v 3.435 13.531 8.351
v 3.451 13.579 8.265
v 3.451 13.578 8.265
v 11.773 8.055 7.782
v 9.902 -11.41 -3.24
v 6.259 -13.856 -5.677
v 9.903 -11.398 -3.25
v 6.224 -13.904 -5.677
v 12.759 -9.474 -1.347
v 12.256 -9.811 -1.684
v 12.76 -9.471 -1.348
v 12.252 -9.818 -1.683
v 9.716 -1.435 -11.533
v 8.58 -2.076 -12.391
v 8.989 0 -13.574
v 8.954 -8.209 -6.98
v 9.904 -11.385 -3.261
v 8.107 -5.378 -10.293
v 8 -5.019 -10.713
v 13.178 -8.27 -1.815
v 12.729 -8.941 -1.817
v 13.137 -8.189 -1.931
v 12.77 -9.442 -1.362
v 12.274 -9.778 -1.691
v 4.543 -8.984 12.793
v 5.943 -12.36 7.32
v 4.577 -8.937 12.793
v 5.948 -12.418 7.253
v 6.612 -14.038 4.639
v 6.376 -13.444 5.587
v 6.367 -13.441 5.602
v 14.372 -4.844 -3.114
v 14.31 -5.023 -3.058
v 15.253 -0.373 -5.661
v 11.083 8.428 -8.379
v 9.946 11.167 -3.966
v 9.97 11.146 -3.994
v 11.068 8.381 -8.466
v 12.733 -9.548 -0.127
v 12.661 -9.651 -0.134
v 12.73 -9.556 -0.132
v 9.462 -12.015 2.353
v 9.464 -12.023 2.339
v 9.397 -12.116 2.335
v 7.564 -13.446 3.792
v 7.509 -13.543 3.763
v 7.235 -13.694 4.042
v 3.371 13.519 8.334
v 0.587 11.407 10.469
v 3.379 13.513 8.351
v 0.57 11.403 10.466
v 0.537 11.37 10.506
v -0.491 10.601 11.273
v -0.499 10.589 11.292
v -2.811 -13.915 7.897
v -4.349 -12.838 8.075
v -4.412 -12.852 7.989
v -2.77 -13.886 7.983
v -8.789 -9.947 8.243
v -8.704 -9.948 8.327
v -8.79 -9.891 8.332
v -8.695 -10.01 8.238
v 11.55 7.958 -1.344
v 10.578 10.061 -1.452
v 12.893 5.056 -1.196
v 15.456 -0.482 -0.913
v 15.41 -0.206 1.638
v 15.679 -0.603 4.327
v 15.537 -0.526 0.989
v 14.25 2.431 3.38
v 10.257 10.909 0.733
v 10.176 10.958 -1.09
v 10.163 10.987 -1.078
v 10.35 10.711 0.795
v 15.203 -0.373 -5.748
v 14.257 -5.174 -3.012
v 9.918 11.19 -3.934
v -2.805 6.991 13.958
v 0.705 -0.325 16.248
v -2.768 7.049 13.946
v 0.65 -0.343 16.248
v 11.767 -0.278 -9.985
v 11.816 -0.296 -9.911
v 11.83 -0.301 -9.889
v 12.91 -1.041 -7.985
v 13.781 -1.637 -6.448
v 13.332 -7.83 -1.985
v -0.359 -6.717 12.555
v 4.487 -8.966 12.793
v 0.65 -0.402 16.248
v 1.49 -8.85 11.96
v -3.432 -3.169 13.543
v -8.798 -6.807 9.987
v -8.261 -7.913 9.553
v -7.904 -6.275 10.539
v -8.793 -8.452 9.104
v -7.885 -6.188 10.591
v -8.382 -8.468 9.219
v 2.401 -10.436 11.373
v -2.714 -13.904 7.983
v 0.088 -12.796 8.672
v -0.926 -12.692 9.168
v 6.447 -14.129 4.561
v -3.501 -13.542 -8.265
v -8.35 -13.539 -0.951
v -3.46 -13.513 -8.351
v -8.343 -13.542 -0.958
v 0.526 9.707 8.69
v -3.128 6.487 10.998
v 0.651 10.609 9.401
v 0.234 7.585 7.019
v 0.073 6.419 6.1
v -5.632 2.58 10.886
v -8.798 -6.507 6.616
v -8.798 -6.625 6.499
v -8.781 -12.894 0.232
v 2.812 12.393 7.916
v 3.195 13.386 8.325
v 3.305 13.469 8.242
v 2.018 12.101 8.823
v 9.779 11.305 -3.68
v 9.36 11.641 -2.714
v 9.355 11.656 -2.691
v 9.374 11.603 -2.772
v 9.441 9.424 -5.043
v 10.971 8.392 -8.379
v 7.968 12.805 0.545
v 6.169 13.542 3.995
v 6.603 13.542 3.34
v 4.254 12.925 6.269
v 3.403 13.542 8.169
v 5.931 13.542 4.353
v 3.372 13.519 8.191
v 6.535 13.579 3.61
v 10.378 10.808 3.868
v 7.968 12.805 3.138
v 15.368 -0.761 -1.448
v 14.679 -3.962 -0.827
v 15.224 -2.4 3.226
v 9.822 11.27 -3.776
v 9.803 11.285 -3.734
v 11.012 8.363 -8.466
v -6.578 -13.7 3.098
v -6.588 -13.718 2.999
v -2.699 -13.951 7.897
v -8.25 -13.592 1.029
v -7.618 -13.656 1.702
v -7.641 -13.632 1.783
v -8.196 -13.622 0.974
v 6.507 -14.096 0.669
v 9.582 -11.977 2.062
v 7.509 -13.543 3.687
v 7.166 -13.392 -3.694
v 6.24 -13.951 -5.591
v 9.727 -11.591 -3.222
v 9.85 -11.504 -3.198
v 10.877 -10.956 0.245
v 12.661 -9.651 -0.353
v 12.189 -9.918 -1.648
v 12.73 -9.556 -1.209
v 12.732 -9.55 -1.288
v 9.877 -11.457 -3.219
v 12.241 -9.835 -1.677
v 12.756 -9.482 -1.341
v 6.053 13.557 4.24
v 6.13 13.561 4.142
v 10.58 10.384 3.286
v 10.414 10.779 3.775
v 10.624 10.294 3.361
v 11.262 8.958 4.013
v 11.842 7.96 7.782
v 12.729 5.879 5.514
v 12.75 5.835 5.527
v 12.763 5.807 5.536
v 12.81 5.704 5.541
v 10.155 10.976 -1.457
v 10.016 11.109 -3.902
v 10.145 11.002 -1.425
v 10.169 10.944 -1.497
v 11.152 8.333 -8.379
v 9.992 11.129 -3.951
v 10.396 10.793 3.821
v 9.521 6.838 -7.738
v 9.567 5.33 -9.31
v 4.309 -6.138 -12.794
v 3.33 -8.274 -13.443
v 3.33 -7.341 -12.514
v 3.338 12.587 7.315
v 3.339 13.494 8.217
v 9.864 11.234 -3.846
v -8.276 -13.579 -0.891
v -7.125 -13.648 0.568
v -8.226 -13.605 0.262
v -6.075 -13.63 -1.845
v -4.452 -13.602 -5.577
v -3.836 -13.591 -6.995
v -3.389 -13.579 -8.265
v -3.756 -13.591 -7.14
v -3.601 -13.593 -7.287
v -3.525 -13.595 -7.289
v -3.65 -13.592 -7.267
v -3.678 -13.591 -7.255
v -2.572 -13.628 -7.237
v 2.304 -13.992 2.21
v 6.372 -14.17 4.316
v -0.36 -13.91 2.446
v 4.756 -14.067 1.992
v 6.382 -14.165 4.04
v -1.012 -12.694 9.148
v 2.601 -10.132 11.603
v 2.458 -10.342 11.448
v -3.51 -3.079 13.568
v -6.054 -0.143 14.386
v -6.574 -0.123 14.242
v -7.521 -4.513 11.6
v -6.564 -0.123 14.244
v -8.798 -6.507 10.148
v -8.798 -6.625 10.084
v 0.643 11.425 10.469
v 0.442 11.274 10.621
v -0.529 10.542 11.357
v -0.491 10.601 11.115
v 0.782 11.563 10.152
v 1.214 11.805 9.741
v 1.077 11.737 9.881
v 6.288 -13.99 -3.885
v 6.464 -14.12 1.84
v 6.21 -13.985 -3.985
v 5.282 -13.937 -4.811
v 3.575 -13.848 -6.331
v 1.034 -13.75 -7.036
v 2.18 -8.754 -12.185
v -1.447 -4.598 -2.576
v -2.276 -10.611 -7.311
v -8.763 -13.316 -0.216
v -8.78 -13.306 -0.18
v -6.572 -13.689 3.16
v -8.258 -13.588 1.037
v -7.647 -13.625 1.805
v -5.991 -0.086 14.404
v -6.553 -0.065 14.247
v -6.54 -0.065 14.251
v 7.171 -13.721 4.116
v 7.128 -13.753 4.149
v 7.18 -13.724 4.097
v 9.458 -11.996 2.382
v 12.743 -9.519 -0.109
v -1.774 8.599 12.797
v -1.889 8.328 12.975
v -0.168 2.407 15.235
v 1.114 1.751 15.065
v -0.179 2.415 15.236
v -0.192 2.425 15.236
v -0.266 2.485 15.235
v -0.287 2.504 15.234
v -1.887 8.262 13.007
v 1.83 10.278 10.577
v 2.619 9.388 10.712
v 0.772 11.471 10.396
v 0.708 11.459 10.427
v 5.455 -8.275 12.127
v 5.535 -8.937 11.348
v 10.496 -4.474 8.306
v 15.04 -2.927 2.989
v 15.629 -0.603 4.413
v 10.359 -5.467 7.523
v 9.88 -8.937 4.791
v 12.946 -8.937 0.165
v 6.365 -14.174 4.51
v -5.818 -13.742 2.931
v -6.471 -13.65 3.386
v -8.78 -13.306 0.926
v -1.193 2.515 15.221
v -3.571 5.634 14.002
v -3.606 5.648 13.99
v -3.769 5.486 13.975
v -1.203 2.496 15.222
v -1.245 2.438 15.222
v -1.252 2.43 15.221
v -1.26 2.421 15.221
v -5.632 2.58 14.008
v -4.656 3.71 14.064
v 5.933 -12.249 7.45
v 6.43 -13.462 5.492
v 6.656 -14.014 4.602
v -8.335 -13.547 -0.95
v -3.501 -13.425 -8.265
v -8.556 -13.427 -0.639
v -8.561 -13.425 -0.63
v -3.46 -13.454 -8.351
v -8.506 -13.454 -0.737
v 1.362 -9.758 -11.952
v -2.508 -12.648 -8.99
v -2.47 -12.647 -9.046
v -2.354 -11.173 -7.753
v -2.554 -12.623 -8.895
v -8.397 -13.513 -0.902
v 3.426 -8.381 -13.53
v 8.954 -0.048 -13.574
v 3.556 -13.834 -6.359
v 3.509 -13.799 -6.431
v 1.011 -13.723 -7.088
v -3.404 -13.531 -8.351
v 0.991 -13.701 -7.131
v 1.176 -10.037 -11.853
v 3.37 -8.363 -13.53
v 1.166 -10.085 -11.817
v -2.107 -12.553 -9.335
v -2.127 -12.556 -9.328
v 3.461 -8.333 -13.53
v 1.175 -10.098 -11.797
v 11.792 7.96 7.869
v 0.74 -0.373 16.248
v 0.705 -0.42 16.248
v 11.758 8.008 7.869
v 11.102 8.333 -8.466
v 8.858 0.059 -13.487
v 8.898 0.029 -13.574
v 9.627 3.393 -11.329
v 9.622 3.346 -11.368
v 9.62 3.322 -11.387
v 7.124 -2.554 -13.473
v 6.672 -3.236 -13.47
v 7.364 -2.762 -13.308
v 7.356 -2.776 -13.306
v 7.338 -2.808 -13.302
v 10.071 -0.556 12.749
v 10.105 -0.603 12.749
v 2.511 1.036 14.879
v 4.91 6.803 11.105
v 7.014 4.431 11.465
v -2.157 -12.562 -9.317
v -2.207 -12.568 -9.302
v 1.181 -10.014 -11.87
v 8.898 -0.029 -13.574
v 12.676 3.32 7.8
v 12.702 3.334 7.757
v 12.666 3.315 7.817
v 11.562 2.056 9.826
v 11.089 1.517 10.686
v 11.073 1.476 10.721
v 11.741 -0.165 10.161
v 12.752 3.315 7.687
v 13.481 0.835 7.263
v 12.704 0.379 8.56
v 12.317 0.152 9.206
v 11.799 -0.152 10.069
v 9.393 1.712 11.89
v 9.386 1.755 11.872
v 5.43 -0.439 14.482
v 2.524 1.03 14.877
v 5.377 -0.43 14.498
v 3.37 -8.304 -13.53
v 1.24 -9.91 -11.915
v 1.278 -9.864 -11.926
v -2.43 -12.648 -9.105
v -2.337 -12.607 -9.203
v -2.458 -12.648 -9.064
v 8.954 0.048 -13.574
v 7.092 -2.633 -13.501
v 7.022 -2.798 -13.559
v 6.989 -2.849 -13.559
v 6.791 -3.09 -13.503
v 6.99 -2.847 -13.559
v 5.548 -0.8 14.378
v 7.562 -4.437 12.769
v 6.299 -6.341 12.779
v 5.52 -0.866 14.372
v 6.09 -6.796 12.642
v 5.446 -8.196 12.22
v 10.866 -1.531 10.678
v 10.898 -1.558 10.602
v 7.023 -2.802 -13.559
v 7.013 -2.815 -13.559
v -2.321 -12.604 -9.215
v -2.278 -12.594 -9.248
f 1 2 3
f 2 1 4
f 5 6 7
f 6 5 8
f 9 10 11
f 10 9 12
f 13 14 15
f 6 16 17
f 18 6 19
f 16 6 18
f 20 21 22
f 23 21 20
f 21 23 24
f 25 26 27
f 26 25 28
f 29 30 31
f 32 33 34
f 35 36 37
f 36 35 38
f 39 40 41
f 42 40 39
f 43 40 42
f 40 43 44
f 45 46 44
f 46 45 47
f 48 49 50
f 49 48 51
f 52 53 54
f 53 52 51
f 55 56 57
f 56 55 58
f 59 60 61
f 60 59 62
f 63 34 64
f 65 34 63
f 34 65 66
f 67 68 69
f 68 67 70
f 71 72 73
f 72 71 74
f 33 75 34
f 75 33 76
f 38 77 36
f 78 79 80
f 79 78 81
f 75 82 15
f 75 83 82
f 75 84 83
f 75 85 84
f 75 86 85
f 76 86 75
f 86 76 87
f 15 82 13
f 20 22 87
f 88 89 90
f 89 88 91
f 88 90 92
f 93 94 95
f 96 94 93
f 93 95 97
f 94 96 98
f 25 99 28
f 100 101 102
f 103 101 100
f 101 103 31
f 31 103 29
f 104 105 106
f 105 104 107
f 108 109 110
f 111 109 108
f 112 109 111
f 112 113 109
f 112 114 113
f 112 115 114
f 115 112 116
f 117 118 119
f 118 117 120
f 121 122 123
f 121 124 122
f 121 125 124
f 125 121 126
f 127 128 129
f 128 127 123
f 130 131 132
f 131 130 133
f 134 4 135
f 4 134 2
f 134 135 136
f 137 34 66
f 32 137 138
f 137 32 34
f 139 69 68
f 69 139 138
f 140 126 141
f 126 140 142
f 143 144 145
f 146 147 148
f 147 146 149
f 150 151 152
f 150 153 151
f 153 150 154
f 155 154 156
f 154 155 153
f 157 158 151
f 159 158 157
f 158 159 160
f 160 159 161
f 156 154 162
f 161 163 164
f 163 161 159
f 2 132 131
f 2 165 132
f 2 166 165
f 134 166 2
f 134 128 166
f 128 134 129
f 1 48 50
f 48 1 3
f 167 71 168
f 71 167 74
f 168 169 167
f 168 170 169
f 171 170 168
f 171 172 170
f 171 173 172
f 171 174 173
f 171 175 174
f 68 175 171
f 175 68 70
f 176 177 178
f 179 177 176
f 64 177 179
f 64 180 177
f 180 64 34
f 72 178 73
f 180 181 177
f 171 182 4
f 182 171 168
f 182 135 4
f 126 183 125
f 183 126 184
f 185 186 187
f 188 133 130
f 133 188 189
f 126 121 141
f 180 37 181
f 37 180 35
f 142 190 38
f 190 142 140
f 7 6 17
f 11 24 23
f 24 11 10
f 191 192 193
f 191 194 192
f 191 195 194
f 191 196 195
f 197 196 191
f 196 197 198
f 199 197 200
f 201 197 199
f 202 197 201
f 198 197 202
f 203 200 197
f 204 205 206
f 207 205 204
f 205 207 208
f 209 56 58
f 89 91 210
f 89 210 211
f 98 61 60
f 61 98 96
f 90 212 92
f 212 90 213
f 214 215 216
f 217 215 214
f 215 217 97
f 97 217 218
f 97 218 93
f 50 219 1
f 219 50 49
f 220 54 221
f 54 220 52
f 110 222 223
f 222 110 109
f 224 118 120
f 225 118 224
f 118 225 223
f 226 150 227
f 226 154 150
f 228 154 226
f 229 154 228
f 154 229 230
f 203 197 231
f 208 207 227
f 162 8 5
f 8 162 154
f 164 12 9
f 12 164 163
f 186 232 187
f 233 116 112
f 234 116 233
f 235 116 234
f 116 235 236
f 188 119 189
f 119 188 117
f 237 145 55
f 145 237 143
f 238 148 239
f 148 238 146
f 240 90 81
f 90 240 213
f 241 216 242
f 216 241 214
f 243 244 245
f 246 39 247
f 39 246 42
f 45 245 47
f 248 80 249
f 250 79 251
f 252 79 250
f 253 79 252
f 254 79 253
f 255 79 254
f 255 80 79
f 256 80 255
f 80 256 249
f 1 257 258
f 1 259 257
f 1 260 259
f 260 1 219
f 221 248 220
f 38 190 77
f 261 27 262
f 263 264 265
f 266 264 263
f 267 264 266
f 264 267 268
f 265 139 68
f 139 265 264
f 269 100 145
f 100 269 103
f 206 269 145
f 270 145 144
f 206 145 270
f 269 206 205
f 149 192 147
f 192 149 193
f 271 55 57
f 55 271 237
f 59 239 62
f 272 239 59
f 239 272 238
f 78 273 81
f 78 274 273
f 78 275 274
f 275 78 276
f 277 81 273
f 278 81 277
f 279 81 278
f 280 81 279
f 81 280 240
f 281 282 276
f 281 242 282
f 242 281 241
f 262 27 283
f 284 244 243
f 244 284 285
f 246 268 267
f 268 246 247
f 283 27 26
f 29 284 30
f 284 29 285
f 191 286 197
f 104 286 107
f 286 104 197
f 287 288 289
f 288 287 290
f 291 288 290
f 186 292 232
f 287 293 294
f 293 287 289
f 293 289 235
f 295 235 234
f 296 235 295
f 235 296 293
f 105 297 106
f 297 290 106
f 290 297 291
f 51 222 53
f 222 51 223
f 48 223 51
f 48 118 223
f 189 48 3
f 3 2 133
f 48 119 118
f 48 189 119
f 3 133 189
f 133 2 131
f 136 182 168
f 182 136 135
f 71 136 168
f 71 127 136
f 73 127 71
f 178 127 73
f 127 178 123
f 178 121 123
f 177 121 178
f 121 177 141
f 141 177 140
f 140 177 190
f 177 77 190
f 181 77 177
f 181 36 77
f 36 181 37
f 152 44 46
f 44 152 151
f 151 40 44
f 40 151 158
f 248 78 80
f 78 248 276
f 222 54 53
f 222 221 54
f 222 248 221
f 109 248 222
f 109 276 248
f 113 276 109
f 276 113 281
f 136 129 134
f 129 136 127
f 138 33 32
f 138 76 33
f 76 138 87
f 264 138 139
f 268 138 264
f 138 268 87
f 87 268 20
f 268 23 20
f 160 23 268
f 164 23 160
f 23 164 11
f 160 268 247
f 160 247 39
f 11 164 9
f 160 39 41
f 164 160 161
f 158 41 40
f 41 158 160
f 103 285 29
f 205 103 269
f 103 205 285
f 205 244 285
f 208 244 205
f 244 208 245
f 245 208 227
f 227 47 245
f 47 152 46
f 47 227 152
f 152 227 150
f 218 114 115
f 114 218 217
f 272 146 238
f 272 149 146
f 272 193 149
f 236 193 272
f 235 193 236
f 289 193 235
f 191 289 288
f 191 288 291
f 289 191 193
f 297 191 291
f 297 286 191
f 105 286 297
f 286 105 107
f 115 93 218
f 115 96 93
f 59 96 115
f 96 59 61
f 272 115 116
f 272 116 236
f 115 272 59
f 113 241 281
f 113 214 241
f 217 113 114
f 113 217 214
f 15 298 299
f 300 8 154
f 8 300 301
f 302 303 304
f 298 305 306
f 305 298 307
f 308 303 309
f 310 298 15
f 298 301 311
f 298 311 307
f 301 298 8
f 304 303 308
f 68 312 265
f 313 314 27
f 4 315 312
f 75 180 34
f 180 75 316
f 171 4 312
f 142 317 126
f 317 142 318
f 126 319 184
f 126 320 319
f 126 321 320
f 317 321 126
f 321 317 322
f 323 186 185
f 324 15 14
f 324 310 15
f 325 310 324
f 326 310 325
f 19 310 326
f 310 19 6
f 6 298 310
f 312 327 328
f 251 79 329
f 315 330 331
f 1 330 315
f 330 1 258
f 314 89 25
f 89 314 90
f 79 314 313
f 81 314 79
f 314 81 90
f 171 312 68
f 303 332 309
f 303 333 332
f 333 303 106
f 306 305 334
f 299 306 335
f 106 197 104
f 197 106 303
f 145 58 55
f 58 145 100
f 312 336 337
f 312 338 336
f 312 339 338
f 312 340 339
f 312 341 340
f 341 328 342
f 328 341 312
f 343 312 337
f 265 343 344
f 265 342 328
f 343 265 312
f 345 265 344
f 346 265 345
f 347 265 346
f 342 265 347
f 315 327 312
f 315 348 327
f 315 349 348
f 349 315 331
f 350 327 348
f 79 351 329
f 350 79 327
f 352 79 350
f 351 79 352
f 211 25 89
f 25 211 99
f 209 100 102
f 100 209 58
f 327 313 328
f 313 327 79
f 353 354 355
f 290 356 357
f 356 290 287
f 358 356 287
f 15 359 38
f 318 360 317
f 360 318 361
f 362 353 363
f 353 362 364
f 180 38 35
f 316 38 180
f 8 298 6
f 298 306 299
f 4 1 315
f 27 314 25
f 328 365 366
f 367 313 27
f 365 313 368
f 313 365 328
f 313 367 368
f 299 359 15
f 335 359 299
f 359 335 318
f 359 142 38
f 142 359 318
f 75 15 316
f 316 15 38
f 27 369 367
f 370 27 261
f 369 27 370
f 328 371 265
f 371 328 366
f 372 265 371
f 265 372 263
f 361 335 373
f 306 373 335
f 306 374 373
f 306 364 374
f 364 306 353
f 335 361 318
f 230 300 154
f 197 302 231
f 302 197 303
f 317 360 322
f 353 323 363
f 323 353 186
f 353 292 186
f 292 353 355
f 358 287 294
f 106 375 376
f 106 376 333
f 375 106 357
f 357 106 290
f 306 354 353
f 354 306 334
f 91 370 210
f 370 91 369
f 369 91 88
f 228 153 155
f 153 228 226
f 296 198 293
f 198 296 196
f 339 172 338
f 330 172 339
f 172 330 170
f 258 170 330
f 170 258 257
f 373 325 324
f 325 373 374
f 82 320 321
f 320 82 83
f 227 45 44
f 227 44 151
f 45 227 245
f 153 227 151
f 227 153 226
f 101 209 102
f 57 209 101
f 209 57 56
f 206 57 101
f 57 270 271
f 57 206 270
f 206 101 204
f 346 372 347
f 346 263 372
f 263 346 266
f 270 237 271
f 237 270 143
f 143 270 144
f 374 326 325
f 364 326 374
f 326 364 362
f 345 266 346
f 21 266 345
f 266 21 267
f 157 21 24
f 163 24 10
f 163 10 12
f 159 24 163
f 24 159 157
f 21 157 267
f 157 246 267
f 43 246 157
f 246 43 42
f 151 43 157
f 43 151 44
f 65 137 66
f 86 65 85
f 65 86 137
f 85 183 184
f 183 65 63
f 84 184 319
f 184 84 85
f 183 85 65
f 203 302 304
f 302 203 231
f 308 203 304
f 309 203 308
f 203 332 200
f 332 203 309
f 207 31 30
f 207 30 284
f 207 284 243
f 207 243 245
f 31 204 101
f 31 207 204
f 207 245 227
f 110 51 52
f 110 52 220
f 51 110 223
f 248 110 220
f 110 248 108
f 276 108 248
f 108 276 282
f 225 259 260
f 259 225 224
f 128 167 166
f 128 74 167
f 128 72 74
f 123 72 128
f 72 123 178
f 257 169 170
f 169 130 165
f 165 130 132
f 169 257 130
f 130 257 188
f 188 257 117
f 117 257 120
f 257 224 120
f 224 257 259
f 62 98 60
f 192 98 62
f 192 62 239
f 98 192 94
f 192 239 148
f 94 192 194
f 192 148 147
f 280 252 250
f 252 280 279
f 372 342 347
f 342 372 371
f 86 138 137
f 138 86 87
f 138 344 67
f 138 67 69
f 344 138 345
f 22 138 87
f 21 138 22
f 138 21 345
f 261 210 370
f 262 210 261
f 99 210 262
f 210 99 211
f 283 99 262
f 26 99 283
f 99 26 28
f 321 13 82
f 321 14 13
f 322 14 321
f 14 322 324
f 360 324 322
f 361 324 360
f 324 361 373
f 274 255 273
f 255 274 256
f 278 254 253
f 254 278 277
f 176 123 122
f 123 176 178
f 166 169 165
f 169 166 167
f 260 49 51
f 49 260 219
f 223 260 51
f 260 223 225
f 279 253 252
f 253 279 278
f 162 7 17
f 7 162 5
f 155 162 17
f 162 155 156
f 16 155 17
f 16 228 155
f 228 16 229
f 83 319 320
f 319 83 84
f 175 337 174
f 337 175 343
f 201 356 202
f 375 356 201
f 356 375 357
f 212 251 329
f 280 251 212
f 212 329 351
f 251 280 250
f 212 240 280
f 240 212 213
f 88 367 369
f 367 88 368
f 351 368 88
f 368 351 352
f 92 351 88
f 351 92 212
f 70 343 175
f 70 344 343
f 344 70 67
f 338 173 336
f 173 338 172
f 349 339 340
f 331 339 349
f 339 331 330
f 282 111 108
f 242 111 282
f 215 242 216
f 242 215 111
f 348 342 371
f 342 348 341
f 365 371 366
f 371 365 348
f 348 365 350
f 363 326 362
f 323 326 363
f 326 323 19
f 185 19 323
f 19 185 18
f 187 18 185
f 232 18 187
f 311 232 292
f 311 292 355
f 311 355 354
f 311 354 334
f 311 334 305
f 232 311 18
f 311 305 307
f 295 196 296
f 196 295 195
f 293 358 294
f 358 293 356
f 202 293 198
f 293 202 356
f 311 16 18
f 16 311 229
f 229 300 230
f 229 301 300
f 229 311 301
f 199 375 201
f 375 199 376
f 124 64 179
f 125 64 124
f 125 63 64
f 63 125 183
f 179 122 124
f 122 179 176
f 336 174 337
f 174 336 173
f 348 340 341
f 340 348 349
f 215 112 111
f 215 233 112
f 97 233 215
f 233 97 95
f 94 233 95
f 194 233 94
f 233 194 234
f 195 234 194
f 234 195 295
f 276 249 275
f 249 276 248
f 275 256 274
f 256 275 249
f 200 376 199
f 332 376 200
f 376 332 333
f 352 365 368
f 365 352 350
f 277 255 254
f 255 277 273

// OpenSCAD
// Auto-generated OpenSCAD file

    inner_points = 10*[[-0.555121029674517, 0.252097973557222, 1.5076139678747007], [0.4789306739060282, -0.30582094958318945, -1.5076139678747007], [1.2783614762453286, 0.8694628743494993, 0.2856195091084527], [0.7478183893280848, -1.344745490869777, 0.5133766732484469], [0.44471109692947597, 0.23973508482260844, 1.52113719207135], [-0.8717455572000972, -0.6565892775398746, 1.235517682962897], [-0.04101019982741844, 1.0542321918178703, 1.203852958972461], [1.2812764981885028, -0.21163080548135457, -0.9182334498640081], [-0.03518015594107033, -1.1079551678438375, -1.203852958972461], [0.7955552014316083, 0.6028663015139072, -1.235517682962897], [0.7460168066892514, -0.6765928517116128, 1.2573987193505602], [-0.06759815027878918, -1.230551772596204, 1.0808761548714765], [1.2630426584795242, -0.9555523132818186, -0.25021524852414045], [0.44942770151148353, -1.50951123416641, -0.42673781300322433], [1.26012763653635, 0.1255413665490355, 0.9536377104483202], [-0.8699439745612638, -1.324741916698039, 0.49149563686078374], [0.4742140693240208, 1.443425369405829, 0.44026103719987336], [1.5796671860051041, -0.04686506218472162, 0.0218810363876632], [-0.5504044250925096, -1.4971483454317962, -0.44026103719987336], [0.793753618792775, 1.2710189406720718, -0.49149563686078374]];

    outer_points = 10*[[-0.8938608578754866, 0.0, 1.3487204141363005], [0.8938608578754866, 0.0, -1.3487204141363005], [1.174206570281529, 0.7960365198874888, 0.7782022732317085], [0.6635402669135327, -1.408673080510631, 0.439759542453489], [0.06899987944129649, -0.03728566145254908, 1.6161320443692175], [-1.1052066908402325, -0.8333221813400379, 0.8379297711375091], [-0.341090558415444, 0.8333221813400379, 1.344345700255859], [1.515297128696973, -0.03728566145254908, -0.5661434270241504], [0.341090558415444, -0.8333221813400379, -1.344345700255859], [1.1052066908402325, 0.8333221813400379, -0.8379297711375091], [0.4527347085711068, -0.8936516488632841, 1.2706108778413883], [-0.2729648616763203, -1.3856292744399337, 0.7896554228617598], [1.3465955664465934, -0.8936516488632841, -0.07810953629491224], [0.6208959961991664, -1.3856292744399337, -0.5590649912745407], [1.0055050080311494, -0.060329467523246194, 1.2662361639609467], [-0.8944011324978067, -1.3483436129873847, 0.007078435749609924], [0.3419647411176168, 1.3483436129873847, 0.8264766215074579], [1.5579413994113391, -0.060329467523246194, 0.43268110670387905], [-0.3419647411176168, -1.3483436129873847, -0.8264766215074579], [0.8944011324978067, 1.3483436129873847, -0.007078435749609924]];

    // Convex hull for inner set (I)
    module inner_hull() {
        hull() {
            for (p = inner_points) {
                translate(p) sphere(r=0.1);
            }
        }
    }

    // Convex hull for outer set (O) minus inner hull (O \ I)
    module outer_minus_inner() {
        difference() {
            hull() {
                for (p = outer_points) {
                    translate(p) sphere(r=0.1);
                }
            }
            inner_hull(); // Subtract inner hull
        }
    }

    // Convex hull for outer set (O) minus all translated inner hulls
    module outer_minus_AllTranslationInner() {
        difference() {
            hull() {
                for (p = outer_points) {
                    translate(p) sphere(r=0.1);
                }
            }
            hull() {
                translate([0,0,50]) inner_hull();
                translate([0,0,-50]) inner_hull();
            }; // Subtract translated inner hulls
        }
    }

    // Difference between outer_minus_inner and outer_minus_AllTranslationInner
    module outer_minus_inner_diff() {
        difference() {
            // Outer minus inner
            difference() {
                hull() {
                    for (p = outer_points) {
                        translate(p) sphere(r=0.1);
                    }
                }
                inner_hull();
            }

            // Subtract Outer minus AllTranslationInner
            difference() {
                hull() {
                    for (p = outer_points) {
                        translate(p) sphere(r=0.1);
                    }
                }
                hull() {
                    translate([0,0,50]) inner_hull();
                    translate([0,0,-50]) inner_hull();
                };
            }
        }
    }

    // Rendering all with colors applied
    color([1, 1, 0, 1]) outer_minus_inner_diff(); // Opaque yellow
    
